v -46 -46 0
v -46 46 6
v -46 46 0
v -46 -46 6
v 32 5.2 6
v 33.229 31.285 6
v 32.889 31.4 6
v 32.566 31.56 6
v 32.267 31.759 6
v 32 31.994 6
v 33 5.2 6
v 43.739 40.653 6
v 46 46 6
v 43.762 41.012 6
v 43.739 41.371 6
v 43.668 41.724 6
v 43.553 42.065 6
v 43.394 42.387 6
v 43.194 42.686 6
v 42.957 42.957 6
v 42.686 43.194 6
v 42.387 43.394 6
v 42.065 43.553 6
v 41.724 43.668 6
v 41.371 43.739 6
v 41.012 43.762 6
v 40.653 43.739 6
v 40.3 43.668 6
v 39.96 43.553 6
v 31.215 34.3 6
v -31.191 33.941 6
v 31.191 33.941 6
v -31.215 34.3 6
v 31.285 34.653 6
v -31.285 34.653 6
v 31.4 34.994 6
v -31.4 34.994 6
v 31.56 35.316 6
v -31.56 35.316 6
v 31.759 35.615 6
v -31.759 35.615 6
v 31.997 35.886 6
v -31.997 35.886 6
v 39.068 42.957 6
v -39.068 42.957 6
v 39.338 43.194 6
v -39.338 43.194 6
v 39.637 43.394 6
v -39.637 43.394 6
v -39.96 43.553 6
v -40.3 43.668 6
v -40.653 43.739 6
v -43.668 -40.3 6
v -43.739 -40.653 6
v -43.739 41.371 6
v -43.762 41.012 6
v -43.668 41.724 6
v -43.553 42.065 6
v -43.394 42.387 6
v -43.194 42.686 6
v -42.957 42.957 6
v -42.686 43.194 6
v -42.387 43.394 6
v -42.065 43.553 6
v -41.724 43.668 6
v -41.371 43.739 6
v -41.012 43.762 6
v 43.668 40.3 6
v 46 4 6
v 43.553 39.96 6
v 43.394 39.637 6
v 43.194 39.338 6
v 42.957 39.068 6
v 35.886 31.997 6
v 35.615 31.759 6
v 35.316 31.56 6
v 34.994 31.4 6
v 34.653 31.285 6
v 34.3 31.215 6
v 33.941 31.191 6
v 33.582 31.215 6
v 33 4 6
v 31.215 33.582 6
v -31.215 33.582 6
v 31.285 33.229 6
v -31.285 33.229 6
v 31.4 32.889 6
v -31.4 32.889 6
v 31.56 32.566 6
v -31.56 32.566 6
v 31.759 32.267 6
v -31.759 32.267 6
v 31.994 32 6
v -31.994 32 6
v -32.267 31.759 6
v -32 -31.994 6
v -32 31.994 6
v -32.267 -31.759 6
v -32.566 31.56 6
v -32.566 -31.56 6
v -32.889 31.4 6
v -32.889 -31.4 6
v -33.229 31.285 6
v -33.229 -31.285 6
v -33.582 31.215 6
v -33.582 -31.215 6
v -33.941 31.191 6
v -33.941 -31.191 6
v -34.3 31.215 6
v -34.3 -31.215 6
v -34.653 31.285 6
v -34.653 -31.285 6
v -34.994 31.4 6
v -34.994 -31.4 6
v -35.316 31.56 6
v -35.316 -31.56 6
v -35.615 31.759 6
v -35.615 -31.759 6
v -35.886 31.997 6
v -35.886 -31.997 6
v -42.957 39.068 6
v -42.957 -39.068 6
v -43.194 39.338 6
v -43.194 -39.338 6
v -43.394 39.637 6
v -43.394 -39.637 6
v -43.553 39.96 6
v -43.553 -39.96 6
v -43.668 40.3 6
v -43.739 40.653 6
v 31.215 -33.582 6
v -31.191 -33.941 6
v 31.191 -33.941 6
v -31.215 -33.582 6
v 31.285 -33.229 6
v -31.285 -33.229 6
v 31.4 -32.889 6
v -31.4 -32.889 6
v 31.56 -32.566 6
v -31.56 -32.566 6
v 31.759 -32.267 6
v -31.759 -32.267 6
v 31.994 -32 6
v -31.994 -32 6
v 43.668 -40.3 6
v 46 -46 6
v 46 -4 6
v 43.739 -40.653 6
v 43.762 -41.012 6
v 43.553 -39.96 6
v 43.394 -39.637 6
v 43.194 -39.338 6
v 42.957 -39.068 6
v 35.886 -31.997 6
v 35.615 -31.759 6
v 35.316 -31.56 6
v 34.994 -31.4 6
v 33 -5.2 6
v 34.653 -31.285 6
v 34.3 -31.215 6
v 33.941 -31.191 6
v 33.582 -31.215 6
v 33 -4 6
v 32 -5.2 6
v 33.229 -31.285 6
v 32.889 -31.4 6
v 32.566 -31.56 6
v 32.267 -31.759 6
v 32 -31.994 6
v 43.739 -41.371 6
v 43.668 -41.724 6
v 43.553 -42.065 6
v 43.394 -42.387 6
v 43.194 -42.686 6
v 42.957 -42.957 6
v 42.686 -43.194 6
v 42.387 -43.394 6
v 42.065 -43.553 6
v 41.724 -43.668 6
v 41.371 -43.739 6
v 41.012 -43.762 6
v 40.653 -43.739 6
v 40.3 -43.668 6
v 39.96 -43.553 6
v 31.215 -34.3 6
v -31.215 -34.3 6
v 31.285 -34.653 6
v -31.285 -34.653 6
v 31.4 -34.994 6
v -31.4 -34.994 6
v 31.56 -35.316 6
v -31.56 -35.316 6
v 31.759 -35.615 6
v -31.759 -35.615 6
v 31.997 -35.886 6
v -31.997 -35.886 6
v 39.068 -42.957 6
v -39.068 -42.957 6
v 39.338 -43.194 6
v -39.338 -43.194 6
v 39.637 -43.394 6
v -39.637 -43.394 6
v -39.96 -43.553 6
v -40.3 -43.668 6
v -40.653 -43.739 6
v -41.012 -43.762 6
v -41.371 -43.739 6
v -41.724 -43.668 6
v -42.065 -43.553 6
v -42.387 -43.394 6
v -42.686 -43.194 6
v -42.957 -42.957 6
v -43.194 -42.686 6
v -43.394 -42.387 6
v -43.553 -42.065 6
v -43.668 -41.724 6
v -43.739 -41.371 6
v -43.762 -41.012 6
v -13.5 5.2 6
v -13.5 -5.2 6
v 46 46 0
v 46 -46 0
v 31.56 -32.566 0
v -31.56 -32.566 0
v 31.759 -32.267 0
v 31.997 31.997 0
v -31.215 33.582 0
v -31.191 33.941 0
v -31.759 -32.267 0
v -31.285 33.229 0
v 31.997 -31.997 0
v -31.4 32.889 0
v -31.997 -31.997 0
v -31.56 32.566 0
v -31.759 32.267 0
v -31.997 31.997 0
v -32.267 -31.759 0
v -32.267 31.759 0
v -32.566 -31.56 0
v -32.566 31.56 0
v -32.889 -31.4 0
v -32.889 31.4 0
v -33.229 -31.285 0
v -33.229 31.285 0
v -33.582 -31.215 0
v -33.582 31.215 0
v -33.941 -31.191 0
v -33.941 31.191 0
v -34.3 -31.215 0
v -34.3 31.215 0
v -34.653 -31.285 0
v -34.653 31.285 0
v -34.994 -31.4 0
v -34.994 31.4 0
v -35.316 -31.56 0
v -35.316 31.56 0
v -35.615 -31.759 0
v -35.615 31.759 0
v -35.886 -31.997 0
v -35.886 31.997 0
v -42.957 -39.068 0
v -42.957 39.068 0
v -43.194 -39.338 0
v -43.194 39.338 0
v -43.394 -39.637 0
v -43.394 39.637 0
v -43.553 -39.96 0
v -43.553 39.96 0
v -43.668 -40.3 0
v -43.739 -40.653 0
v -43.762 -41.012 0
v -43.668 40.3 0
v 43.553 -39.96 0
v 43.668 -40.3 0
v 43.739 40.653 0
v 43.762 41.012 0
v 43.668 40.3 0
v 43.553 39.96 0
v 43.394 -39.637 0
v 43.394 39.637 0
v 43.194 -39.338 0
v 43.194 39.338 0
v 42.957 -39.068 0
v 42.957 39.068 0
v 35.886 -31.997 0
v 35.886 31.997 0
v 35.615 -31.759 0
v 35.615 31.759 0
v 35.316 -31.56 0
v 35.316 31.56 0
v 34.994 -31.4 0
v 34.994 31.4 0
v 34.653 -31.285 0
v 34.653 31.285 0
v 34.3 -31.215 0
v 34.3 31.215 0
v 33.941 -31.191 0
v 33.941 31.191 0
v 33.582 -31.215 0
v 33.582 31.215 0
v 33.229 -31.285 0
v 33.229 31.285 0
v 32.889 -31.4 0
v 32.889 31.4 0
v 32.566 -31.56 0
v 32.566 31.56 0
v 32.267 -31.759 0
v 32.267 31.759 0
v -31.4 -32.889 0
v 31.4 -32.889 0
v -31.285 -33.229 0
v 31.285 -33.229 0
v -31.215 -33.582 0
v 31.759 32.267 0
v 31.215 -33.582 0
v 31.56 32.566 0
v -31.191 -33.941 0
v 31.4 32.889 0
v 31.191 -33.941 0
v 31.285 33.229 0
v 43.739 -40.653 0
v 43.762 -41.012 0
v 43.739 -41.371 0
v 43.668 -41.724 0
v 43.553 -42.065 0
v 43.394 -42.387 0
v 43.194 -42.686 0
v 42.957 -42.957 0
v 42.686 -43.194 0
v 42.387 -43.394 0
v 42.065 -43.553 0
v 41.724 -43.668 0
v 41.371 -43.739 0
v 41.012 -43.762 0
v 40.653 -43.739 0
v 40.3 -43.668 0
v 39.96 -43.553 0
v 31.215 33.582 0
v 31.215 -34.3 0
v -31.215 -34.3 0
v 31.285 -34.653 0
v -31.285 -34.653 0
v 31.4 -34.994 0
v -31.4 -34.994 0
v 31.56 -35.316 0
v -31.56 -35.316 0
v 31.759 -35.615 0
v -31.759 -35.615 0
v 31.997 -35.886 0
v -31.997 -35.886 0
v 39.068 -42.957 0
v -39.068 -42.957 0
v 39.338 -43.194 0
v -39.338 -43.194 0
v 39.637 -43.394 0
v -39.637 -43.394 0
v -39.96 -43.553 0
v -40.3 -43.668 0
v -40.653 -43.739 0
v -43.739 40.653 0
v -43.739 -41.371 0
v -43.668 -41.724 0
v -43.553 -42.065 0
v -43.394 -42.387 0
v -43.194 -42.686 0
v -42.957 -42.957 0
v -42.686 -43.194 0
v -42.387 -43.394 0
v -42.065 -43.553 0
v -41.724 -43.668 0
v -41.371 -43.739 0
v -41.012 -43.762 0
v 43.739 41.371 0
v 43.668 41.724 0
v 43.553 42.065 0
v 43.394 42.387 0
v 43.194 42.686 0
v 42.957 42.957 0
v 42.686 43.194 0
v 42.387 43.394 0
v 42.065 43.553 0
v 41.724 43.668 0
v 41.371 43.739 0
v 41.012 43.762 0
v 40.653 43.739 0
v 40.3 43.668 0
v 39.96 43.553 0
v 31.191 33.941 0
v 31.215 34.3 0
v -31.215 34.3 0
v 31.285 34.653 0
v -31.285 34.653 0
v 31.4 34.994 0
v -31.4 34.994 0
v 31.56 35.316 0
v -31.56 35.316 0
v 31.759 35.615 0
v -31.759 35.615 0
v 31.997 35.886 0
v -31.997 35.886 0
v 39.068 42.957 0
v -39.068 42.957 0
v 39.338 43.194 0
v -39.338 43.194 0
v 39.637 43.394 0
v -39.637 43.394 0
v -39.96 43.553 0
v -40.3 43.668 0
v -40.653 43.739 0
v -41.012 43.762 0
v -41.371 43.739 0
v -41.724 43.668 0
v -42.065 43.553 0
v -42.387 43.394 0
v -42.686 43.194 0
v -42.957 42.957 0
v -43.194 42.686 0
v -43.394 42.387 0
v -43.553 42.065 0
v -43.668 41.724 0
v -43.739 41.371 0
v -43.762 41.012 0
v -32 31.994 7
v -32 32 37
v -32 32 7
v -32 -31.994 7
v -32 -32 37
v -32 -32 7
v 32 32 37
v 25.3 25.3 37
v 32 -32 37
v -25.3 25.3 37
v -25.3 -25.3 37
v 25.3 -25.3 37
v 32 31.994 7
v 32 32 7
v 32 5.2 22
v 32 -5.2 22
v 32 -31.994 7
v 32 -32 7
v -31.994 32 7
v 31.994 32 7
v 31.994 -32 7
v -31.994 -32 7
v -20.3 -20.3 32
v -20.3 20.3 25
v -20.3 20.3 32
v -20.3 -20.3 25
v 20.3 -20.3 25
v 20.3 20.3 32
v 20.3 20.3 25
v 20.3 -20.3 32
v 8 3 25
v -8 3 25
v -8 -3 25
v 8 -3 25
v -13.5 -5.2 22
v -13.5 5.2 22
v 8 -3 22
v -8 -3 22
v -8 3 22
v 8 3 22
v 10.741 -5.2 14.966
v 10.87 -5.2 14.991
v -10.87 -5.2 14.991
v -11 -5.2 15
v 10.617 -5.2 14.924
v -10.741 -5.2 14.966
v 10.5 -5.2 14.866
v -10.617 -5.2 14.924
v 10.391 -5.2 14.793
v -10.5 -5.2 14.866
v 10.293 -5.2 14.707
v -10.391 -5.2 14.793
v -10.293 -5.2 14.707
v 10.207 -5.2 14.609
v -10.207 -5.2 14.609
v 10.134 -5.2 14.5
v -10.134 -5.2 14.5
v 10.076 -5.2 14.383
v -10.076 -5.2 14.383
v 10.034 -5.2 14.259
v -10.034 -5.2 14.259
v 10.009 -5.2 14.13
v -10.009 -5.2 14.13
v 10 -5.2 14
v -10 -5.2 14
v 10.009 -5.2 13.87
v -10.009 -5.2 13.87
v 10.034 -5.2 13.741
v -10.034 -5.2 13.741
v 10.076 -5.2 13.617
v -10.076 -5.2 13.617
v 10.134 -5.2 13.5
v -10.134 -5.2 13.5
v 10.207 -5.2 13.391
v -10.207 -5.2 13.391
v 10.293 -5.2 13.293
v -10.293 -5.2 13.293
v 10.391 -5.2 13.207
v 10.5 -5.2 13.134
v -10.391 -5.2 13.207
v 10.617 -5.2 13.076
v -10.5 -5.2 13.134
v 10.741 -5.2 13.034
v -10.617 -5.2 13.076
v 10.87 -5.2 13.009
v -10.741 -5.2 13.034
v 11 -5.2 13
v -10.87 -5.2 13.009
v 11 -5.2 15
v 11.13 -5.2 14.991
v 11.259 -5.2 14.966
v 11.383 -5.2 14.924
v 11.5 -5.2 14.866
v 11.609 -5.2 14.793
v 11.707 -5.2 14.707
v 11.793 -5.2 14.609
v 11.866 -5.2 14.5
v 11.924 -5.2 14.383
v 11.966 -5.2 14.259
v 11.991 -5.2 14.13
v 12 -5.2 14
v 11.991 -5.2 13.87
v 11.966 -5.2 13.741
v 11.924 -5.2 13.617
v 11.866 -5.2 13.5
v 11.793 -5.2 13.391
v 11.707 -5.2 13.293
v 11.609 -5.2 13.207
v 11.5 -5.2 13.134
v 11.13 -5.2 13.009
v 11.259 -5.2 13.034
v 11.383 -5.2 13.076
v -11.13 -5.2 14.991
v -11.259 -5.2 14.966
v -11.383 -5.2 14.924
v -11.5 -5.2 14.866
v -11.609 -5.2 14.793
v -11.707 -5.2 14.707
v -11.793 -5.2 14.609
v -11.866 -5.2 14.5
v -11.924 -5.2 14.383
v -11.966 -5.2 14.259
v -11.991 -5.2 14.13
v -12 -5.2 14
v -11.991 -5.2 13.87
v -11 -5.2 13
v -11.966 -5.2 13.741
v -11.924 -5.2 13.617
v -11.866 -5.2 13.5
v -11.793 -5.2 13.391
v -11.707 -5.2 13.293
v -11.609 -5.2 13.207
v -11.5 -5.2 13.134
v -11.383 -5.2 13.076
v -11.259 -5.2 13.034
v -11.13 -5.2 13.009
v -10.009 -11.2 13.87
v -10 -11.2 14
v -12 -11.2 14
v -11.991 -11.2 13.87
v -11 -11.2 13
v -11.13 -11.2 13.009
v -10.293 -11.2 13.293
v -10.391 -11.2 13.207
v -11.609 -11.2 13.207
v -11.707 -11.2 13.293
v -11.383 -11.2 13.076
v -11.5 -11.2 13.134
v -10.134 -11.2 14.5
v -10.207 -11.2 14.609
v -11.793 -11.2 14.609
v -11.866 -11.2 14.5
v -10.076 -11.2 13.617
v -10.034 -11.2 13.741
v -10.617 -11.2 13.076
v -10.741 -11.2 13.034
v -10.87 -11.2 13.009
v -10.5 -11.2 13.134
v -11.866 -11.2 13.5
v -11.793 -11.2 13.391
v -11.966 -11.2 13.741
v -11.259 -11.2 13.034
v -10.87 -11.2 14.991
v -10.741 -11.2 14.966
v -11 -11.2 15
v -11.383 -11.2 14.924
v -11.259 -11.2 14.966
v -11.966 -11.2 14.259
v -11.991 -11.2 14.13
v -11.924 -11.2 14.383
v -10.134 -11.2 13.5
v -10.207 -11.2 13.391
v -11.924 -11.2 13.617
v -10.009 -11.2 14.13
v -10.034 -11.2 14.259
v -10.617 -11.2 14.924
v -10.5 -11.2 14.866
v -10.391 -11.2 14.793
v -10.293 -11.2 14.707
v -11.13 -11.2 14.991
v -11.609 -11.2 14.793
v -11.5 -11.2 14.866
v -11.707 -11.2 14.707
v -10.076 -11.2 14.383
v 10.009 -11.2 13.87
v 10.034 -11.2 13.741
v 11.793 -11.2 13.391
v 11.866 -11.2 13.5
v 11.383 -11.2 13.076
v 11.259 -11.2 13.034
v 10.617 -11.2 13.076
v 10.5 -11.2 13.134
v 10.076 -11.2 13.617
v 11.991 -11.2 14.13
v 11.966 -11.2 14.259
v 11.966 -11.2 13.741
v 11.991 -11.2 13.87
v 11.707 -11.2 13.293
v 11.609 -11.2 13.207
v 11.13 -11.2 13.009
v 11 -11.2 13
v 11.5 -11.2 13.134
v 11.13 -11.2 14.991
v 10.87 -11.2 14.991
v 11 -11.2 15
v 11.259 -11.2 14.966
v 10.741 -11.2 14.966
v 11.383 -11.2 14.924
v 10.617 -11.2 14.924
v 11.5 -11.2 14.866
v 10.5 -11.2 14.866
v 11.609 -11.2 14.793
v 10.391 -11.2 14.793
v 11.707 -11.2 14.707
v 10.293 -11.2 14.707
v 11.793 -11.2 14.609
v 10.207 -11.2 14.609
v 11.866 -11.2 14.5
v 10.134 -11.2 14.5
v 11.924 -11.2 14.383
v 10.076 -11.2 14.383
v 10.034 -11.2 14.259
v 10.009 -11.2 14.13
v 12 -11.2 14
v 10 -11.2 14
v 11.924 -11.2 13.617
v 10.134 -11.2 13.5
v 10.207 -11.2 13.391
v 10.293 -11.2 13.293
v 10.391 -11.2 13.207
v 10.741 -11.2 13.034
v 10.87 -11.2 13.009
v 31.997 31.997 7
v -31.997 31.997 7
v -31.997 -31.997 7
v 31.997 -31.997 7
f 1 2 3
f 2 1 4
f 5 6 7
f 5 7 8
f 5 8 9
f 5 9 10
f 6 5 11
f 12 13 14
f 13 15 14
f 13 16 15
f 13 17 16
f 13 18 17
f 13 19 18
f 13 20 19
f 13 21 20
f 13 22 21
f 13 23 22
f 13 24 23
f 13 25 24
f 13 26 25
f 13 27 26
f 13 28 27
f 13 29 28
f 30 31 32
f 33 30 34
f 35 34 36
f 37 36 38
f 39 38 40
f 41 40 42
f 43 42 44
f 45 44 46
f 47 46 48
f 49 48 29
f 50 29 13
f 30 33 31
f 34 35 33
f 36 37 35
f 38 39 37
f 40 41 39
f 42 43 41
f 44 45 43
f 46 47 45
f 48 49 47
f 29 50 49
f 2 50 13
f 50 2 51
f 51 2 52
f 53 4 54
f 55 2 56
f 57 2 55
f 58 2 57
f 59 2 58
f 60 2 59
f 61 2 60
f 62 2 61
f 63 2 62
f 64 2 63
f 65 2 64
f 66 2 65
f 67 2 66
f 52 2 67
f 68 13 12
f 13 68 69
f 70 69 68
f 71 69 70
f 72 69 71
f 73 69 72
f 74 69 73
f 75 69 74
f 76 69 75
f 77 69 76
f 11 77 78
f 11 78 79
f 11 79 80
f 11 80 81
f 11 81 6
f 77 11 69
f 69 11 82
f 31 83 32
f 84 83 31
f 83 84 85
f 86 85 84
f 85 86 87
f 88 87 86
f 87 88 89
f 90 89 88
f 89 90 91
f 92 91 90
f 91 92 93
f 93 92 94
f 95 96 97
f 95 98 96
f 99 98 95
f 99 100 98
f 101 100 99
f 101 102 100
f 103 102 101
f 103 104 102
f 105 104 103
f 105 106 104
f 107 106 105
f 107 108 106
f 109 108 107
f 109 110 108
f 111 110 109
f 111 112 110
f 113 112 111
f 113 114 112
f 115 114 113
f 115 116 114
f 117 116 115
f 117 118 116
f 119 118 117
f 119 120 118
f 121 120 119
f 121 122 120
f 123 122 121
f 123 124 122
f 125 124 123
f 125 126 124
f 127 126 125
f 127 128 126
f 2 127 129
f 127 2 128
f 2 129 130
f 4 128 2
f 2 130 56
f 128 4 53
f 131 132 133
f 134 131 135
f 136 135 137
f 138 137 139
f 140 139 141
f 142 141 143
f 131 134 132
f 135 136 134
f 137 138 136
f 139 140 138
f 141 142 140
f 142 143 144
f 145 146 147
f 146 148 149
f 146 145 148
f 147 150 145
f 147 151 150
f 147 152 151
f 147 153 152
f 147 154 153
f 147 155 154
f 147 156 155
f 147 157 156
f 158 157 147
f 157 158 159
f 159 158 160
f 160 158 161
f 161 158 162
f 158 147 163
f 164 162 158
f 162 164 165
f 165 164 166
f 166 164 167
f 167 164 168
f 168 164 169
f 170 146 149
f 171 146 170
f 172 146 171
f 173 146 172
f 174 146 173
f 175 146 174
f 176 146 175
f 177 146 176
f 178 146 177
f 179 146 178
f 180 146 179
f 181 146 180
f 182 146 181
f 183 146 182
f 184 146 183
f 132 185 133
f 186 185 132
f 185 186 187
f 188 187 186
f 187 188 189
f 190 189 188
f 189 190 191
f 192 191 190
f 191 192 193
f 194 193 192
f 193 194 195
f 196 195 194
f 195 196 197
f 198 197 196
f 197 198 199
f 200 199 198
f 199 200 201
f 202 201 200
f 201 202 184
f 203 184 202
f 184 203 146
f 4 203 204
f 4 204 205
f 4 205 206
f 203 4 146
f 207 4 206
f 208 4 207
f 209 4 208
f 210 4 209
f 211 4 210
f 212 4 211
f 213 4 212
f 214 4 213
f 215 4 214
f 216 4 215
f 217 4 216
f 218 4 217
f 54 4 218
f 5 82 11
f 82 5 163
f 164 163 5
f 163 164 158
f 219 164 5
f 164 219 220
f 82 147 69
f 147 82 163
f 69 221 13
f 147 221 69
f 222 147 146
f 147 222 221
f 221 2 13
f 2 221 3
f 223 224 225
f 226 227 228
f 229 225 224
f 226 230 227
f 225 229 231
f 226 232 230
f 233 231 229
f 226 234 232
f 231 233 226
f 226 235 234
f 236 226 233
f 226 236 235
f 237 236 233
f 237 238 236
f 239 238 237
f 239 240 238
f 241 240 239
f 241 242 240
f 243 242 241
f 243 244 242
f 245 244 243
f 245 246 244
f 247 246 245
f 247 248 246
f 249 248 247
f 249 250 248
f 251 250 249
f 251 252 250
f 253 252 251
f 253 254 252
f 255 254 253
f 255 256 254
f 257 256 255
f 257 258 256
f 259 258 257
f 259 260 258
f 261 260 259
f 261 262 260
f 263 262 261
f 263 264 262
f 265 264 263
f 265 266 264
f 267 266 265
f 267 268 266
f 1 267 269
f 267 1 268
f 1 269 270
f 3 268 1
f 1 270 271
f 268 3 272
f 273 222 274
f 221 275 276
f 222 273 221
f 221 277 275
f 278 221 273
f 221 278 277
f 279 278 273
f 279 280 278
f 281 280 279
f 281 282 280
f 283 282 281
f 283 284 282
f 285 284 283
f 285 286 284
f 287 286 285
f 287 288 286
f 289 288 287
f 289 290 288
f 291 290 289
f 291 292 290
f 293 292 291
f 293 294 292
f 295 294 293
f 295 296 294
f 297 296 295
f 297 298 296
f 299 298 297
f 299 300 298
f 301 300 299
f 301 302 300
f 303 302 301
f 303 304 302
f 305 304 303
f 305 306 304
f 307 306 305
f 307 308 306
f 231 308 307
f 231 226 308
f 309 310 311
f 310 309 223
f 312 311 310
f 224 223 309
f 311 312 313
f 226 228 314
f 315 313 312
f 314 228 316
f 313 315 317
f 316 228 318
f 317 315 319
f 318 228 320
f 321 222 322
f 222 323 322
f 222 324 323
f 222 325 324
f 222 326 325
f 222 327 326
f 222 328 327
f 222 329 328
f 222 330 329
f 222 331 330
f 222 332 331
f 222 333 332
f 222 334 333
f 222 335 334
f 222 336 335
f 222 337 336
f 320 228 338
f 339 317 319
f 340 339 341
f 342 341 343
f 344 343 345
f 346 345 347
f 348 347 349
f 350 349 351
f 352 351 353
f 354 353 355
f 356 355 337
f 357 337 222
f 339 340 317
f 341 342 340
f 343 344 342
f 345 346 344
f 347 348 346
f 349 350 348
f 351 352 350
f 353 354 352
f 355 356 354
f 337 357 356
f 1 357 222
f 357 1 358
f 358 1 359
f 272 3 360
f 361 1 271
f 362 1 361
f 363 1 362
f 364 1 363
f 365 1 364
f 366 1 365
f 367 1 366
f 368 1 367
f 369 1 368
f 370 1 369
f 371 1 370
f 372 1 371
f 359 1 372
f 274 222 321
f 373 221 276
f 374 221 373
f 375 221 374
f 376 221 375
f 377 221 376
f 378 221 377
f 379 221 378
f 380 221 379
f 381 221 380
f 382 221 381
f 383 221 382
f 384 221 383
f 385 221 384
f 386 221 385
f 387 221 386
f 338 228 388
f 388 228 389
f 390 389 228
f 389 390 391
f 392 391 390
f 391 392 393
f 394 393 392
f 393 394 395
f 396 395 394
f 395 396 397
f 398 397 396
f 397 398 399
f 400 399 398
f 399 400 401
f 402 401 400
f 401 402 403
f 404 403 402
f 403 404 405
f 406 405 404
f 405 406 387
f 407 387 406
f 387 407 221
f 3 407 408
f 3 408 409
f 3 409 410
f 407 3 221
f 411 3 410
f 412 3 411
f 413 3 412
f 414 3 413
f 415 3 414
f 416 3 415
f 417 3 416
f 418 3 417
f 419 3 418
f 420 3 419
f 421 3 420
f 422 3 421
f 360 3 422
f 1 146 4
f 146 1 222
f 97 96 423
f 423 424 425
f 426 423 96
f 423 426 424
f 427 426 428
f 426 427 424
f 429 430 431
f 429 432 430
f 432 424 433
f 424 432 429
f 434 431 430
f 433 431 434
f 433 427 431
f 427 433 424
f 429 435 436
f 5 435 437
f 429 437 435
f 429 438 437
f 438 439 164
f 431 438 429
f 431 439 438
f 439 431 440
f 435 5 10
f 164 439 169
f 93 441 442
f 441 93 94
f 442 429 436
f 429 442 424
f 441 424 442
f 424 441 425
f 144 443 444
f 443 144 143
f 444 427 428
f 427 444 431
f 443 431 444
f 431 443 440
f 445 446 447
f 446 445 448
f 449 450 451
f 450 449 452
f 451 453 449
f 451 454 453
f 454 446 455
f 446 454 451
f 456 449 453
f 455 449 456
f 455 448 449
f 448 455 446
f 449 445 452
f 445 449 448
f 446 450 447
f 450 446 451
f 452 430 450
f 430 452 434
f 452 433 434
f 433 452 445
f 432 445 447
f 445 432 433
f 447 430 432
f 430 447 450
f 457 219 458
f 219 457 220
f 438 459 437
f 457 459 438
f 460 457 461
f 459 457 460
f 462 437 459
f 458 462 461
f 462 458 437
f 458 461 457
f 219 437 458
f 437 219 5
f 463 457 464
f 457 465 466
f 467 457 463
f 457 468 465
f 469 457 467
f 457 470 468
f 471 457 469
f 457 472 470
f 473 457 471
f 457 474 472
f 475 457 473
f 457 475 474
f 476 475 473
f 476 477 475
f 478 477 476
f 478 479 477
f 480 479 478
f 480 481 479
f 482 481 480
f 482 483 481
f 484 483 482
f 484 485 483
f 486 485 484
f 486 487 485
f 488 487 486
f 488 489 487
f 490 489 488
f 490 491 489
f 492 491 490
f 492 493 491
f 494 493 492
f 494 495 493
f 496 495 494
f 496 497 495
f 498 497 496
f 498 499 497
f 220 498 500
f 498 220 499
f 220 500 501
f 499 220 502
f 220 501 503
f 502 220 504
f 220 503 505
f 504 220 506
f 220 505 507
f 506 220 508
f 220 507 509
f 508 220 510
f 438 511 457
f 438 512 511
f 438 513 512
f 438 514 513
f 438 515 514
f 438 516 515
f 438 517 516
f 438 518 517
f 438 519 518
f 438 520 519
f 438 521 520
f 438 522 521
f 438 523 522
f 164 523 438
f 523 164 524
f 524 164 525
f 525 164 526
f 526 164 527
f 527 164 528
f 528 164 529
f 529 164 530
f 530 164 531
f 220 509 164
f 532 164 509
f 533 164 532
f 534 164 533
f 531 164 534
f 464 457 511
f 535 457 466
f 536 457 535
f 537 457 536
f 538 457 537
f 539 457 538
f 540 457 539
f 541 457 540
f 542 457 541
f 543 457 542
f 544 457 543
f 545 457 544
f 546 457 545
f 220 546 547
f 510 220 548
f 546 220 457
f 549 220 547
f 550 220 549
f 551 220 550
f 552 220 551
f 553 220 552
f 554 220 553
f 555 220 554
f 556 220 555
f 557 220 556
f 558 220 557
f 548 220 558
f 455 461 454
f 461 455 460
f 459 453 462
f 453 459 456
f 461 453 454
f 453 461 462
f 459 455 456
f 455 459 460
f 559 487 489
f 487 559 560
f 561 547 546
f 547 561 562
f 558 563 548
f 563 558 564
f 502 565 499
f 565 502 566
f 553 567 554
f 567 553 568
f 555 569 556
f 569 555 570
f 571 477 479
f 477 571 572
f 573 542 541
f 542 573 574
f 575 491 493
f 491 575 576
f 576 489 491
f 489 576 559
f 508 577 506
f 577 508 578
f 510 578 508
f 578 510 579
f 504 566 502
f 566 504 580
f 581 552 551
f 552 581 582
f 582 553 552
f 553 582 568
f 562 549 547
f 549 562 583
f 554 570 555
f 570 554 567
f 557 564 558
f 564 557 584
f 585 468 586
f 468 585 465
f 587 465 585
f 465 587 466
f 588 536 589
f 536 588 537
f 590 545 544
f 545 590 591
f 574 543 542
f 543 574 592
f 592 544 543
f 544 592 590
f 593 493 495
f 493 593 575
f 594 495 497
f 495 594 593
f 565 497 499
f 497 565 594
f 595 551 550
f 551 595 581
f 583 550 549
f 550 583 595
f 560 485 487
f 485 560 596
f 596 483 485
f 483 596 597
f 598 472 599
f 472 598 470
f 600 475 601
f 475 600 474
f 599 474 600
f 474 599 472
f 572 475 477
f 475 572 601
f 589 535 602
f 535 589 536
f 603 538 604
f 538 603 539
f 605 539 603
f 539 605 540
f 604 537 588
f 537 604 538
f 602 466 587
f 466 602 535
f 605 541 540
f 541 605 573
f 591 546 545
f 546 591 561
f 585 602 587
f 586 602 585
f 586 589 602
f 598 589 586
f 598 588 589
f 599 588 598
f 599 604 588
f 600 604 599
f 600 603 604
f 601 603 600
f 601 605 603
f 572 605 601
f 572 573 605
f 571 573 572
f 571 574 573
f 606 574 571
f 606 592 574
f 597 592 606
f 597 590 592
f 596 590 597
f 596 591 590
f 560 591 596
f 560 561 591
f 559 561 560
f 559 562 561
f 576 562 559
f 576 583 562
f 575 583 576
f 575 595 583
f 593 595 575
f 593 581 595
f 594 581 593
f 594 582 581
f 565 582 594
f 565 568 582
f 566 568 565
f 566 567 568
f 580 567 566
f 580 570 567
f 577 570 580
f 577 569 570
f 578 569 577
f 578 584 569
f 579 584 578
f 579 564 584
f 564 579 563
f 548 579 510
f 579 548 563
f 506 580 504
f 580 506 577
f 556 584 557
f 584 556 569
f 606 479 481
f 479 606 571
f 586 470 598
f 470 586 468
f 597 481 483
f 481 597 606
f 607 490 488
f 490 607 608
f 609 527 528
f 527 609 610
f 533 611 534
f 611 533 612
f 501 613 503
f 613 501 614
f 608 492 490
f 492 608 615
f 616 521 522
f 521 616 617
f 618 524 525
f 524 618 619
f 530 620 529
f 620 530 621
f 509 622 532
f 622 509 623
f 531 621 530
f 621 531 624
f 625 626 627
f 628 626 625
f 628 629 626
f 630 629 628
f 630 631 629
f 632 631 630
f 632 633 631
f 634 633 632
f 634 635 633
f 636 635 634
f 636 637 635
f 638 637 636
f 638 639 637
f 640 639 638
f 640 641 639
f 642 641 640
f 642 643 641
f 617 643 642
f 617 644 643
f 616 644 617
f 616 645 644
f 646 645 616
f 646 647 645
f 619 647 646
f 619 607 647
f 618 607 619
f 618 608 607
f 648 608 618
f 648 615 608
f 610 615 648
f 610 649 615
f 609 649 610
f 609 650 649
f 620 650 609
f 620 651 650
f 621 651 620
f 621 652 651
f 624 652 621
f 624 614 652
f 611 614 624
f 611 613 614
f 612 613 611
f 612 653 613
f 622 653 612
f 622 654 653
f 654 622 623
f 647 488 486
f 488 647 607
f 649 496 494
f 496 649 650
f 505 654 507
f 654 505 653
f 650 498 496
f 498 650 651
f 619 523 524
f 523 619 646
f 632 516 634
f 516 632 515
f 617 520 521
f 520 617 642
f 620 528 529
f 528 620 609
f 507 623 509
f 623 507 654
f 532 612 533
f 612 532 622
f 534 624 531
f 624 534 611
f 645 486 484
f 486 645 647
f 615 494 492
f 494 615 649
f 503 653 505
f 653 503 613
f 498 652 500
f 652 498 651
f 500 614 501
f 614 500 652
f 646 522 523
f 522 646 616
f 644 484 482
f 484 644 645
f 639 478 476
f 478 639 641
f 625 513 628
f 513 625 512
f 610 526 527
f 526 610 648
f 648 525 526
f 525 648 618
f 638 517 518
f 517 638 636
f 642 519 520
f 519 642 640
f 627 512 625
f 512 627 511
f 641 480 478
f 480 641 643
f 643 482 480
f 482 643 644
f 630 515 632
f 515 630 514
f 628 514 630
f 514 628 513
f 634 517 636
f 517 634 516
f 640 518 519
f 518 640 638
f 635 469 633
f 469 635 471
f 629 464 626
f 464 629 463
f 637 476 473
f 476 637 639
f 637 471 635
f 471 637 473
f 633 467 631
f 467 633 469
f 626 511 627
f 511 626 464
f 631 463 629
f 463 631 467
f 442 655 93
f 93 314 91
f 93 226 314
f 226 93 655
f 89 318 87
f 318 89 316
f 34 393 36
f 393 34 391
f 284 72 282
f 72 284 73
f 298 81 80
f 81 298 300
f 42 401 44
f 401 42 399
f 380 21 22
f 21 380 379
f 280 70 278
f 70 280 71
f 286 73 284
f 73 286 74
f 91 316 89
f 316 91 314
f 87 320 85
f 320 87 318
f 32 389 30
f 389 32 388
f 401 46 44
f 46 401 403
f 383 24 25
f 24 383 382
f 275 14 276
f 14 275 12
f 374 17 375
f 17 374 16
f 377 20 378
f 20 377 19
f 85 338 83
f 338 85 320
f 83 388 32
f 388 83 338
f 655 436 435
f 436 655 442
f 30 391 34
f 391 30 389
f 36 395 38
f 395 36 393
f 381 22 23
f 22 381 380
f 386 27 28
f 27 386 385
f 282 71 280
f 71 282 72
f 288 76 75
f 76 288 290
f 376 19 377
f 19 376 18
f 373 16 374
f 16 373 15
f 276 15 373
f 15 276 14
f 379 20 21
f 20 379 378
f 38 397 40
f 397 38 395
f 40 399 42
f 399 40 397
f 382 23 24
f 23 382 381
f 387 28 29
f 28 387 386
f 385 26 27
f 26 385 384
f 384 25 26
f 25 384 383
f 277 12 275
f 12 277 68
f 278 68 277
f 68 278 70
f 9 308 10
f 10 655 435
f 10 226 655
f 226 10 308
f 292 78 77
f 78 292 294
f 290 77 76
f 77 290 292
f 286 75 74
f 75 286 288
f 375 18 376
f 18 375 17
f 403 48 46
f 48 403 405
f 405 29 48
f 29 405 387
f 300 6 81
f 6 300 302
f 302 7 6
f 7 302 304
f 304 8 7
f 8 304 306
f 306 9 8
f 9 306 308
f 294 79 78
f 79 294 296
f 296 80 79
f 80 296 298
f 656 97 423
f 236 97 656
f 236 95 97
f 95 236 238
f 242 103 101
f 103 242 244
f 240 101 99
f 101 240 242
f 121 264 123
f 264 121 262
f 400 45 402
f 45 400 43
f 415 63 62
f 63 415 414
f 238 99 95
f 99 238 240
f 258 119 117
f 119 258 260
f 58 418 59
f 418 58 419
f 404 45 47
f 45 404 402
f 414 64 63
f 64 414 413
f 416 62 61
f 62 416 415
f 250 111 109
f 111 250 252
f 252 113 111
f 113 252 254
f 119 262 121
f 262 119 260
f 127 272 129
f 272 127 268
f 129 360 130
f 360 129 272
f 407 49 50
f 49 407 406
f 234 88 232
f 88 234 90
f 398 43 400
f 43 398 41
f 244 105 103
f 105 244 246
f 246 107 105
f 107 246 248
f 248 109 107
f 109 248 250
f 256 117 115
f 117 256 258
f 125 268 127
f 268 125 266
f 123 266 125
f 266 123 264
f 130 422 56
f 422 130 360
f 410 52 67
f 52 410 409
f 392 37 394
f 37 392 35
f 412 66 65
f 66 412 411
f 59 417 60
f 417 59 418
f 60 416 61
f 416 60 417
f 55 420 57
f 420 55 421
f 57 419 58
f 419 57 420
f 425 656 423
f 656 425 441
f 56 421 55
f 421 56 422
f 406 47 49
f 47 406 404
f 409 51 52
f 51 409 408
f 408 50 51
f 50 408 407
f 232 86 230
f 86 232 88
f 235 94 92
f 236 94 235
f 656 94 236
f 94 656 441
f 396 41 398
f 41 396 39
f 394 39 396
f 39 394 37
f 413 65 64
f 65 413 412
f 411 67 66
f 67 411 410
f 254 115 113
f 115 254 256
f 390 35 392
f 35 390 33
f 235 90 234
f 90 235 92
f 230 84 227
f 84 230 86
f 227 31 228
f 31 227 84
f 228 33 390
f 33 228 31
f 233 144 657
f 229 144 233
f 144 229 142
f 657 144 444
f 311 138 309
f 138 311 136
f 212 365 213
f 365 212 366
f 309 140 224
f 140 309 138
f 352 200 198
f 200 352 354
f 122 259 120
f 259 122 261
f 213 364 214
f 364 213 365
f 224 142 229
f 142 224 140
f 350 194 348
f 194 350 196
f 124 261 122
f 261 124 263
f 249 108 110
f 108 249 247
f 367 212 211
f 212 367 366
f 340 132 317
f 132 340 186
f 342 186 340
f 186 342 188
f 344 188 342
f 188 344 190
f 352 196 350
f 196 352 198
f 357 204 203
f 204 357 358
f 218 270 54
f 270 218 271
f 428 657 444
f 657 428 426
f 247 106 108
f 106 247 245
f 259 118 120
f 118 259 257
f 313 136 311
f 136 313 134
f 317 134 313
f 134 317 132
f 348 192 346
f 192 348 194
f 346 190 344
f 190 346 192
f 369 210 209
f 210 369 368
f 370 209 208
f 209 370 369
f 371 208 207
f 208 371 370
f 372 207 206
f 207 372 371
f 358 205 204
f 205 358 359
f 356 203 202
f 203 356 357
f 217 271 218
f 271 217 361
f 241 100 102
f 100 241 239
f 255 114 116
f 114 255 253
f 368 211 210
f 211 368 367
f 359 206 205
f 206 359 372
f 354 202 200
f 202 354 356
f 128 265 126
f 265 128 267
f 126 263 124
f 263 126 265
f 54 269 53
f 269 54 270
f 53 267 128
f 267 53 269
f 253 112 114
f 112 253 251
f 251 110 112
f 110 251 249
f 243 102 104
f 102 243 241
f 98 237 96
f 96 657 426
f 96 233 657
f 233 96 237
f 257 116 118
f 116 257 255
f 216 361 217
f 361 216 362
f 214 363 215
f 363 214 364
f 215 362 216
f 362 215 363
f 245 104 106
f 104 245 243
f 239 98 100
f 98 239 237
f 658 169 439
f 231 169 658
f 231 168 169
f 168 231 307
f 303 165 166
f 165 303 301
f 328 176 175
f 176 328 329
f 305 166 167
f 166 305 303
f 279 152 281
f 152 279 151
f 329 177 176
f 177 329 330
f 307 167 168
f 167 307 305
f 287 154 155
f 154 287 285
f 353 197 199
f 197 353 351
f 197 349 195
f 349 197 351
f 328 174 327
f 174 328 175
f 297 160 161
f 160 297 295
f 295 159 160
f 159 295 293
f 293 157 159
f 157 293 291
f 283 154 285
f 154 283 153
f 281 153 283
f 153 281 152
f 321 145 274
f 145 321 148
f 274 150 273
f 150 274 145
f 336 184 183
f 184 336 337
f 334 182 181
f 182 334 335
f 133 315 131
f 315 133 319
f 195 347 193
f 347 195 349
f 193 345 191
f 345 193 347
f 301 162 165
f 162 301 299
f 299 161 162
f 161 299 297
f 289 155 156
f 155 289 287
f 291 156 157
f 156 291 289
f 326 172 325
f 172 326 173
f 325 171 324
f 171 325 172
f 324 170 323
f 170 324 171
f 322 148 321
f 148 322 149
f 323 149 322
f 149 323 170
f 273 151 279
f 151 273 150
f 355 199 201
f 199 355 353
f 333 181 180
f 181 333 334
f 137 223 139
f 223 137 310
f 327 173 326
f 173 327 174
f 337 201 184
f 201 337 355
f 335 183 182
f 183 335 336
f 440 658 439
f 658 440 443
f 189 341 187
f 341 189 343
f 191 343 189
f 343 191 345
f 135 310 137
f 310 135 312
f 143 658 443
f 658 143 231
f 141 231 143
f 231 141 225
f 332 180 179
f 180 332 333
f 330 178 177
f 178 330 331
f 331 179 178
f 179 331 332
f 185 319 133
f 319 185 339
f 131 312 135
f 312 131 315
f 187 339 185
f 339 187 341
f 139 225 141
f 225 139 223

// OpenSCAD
// TendWright mock CNC bay — nest fixture (plan #619)
//
// A self-centering pocket the arm drops 40x40x20 mm blanks into, with a
// KW12-3 roller microswitch under the floor as the part-present sensor.
// Print in PETG, pocket up (chamfers face up = no elephant's foot in the
// lead-in). Re-render:  openscad -o nest_fixture.stl nest_fixture.scad
//
// ============================ MEASURE ME =============================
// Values marked MEASURE are nominal/datasheet guesses and MUST be
// checked with calipers (switch) or the A1 tolerance test (clearance)
// before printing. The full list also lives in hardware/mockbay/README.md.
// =====================================================================

// ---- blank ----------------------------------------------------------
blank_xy        = 40.0;  // MEASURE: actual cut wax blank width/depth
blank_h         = 20.0;  // MEASURE: actual blank height
pocket_clear    = 0.30;  // MEASURE: per-side clearance from A1 tolerance test

// ---- pocket ---------------------------------------------------------
pocket_depth    = 12.0;  // blank stands 8 mm proud for the gripper
chamfer_w       = 5.0;   // 45-degree lead-in width (self-centering funnel)
floor_t         = 3.0;   // pocket floor above the switch bay

// ---- KW12-3 switch (MEASURE ALL FIVE with the real part) ------------
sw_len          = 27.0;  // MEASURE: body length
sw_w            = 10.4;  // MEASURE: body width  (incl. clearance)
sw_h            = 16.0;  // MEASURE: body height (base to top, lever down)
sw_hole_pitch   = 22.0;  // MEASURE: mounting-hole center spacing
sw_hole_d       = 2.0;   // MEASURE: pilot for M2 self-tappers
lever_window_l  = 16.0;  // MEASURE: roller-lever travel footprint in floor
lever_window_w  = 6.0;   // MEASURE: window width for the roller

// ---- body -----------------------------------------------------------
block_xy        = 64.0;  // pocket block outer size
flange_xy       = 92.0;  // base flange (clamp/screw to bench)
flange_t        = 6.0;
clamp_slot_d    = 5.5;   // M5 clearance slots in the flange corners
clamp_slot_l    = 10.0;

$fn = 48;

pocket_xy   = blank_xy + 2 * pocket_clear;
block_h     = flange_t + sw_h + floor_t + pocket_depth;
bay_z       = flange_t;                 // switch bay sits on the flange top
floor_z     = bay_z + sw_h;             // pocket floor bottom
pocket_z    = floor_z + floor_t;        // pocket floor top

module clamp_slot() {
    hull() {
        cylinder(d = clamp_slot_d, h = flange_t + 2);
        translate([clamp_slot_l, 0, 0])
            cylinder(d = clamp_slot_d, h = flange_t + 2);
    }
}

module body() {
    // flange
    translate([-flange_xy/2, -flange_xy/2, 0])
        cube([flange_xy, flange_xy, flange_t]);
    // pocket block
    translate([-block_xy/2, -block_xy/2, 0])
        cube([block_xy, block_xy, block_h]);
}

module pocket_cut() {
    // straight pocket walls
    translate([-pocket_xy/2, -pocket_xy/2, pocket_z])
        cube([pocket_xy, pocket_xy, pocket_depth + 1]);
    // 45-degree chamfer funnel at the top
    hull() {
        translate([-pocket_xy/2, -pocket_xy/2, block_h - chamfer_w])
            cube([pocket_xy, pocket_xy, 0.01]);
        translate([-pocket_xy/2 - chamfer_w, -pocket_xy/2 - chamfer_w, block_h])
            cube([pocket_xy + 2*chamfer_w, pocket_xy + 2*chamfer_w, 0.01]);
    }
}

module switch_bay_cut() {
    // Bay under the pocket floor, open to the +X face for insertion/wiring.
    // The switch lies on its side wall, lever up, roller poking through the
    // floor window; screw pilots in the -Y bay wall.
    translate([-sw_len/2, -sw_w/2, bay_z])
        cube([block_xy/2 - (-sw_len/2) + 1, sw_w, sw_h]);
    // lever window through the pocket floor (offset toward -X so the roller
    // sits under the blank's footprint, not its exact center)
    translate([-lever_window_l/2, -lever_window_w/2, floor_z - 1])
        cube([lever_window_l, lever_window_w, floor_t + 2]);
    // wiring channel out through the flange edge
    translate([block_xy/2 - 1, -4, bay_z])
        cube([(flange_xy - block_xy)/2 + 2, 8, 6]);
}

module switch_pilots() {
    // Two M2 pilot holes into the -Y wall of the bay, matching the KW12-3
    // mounting holes (switch screwed against that wall).
    for (dx = [-sw_hole_pitch/2, sw_hole_pitch/2])
        translate([dx, -sw_w/2 - 6, bay_z + sw_h/2])
            rotate([-90, 0, 0])
                cylinder(d = sw_hole_d, h = 8);
}

difference() {
    body();
    pocket_cut();
    switch_bay_cut();
    switch_pilots();
    // flange clamp slots, one per corner, radially oriented. Radius must
    // clear the block footprint (block corner is at block_xy/2 * sqrt(2)
    // = ~45 on the diagonal) but stay inside the flange corner (~65).
    for (a = [45, 135, 225, 315])
        rotate([0, 0, a])
            translate([48, 0, -1])
                clamp_slot();
}
